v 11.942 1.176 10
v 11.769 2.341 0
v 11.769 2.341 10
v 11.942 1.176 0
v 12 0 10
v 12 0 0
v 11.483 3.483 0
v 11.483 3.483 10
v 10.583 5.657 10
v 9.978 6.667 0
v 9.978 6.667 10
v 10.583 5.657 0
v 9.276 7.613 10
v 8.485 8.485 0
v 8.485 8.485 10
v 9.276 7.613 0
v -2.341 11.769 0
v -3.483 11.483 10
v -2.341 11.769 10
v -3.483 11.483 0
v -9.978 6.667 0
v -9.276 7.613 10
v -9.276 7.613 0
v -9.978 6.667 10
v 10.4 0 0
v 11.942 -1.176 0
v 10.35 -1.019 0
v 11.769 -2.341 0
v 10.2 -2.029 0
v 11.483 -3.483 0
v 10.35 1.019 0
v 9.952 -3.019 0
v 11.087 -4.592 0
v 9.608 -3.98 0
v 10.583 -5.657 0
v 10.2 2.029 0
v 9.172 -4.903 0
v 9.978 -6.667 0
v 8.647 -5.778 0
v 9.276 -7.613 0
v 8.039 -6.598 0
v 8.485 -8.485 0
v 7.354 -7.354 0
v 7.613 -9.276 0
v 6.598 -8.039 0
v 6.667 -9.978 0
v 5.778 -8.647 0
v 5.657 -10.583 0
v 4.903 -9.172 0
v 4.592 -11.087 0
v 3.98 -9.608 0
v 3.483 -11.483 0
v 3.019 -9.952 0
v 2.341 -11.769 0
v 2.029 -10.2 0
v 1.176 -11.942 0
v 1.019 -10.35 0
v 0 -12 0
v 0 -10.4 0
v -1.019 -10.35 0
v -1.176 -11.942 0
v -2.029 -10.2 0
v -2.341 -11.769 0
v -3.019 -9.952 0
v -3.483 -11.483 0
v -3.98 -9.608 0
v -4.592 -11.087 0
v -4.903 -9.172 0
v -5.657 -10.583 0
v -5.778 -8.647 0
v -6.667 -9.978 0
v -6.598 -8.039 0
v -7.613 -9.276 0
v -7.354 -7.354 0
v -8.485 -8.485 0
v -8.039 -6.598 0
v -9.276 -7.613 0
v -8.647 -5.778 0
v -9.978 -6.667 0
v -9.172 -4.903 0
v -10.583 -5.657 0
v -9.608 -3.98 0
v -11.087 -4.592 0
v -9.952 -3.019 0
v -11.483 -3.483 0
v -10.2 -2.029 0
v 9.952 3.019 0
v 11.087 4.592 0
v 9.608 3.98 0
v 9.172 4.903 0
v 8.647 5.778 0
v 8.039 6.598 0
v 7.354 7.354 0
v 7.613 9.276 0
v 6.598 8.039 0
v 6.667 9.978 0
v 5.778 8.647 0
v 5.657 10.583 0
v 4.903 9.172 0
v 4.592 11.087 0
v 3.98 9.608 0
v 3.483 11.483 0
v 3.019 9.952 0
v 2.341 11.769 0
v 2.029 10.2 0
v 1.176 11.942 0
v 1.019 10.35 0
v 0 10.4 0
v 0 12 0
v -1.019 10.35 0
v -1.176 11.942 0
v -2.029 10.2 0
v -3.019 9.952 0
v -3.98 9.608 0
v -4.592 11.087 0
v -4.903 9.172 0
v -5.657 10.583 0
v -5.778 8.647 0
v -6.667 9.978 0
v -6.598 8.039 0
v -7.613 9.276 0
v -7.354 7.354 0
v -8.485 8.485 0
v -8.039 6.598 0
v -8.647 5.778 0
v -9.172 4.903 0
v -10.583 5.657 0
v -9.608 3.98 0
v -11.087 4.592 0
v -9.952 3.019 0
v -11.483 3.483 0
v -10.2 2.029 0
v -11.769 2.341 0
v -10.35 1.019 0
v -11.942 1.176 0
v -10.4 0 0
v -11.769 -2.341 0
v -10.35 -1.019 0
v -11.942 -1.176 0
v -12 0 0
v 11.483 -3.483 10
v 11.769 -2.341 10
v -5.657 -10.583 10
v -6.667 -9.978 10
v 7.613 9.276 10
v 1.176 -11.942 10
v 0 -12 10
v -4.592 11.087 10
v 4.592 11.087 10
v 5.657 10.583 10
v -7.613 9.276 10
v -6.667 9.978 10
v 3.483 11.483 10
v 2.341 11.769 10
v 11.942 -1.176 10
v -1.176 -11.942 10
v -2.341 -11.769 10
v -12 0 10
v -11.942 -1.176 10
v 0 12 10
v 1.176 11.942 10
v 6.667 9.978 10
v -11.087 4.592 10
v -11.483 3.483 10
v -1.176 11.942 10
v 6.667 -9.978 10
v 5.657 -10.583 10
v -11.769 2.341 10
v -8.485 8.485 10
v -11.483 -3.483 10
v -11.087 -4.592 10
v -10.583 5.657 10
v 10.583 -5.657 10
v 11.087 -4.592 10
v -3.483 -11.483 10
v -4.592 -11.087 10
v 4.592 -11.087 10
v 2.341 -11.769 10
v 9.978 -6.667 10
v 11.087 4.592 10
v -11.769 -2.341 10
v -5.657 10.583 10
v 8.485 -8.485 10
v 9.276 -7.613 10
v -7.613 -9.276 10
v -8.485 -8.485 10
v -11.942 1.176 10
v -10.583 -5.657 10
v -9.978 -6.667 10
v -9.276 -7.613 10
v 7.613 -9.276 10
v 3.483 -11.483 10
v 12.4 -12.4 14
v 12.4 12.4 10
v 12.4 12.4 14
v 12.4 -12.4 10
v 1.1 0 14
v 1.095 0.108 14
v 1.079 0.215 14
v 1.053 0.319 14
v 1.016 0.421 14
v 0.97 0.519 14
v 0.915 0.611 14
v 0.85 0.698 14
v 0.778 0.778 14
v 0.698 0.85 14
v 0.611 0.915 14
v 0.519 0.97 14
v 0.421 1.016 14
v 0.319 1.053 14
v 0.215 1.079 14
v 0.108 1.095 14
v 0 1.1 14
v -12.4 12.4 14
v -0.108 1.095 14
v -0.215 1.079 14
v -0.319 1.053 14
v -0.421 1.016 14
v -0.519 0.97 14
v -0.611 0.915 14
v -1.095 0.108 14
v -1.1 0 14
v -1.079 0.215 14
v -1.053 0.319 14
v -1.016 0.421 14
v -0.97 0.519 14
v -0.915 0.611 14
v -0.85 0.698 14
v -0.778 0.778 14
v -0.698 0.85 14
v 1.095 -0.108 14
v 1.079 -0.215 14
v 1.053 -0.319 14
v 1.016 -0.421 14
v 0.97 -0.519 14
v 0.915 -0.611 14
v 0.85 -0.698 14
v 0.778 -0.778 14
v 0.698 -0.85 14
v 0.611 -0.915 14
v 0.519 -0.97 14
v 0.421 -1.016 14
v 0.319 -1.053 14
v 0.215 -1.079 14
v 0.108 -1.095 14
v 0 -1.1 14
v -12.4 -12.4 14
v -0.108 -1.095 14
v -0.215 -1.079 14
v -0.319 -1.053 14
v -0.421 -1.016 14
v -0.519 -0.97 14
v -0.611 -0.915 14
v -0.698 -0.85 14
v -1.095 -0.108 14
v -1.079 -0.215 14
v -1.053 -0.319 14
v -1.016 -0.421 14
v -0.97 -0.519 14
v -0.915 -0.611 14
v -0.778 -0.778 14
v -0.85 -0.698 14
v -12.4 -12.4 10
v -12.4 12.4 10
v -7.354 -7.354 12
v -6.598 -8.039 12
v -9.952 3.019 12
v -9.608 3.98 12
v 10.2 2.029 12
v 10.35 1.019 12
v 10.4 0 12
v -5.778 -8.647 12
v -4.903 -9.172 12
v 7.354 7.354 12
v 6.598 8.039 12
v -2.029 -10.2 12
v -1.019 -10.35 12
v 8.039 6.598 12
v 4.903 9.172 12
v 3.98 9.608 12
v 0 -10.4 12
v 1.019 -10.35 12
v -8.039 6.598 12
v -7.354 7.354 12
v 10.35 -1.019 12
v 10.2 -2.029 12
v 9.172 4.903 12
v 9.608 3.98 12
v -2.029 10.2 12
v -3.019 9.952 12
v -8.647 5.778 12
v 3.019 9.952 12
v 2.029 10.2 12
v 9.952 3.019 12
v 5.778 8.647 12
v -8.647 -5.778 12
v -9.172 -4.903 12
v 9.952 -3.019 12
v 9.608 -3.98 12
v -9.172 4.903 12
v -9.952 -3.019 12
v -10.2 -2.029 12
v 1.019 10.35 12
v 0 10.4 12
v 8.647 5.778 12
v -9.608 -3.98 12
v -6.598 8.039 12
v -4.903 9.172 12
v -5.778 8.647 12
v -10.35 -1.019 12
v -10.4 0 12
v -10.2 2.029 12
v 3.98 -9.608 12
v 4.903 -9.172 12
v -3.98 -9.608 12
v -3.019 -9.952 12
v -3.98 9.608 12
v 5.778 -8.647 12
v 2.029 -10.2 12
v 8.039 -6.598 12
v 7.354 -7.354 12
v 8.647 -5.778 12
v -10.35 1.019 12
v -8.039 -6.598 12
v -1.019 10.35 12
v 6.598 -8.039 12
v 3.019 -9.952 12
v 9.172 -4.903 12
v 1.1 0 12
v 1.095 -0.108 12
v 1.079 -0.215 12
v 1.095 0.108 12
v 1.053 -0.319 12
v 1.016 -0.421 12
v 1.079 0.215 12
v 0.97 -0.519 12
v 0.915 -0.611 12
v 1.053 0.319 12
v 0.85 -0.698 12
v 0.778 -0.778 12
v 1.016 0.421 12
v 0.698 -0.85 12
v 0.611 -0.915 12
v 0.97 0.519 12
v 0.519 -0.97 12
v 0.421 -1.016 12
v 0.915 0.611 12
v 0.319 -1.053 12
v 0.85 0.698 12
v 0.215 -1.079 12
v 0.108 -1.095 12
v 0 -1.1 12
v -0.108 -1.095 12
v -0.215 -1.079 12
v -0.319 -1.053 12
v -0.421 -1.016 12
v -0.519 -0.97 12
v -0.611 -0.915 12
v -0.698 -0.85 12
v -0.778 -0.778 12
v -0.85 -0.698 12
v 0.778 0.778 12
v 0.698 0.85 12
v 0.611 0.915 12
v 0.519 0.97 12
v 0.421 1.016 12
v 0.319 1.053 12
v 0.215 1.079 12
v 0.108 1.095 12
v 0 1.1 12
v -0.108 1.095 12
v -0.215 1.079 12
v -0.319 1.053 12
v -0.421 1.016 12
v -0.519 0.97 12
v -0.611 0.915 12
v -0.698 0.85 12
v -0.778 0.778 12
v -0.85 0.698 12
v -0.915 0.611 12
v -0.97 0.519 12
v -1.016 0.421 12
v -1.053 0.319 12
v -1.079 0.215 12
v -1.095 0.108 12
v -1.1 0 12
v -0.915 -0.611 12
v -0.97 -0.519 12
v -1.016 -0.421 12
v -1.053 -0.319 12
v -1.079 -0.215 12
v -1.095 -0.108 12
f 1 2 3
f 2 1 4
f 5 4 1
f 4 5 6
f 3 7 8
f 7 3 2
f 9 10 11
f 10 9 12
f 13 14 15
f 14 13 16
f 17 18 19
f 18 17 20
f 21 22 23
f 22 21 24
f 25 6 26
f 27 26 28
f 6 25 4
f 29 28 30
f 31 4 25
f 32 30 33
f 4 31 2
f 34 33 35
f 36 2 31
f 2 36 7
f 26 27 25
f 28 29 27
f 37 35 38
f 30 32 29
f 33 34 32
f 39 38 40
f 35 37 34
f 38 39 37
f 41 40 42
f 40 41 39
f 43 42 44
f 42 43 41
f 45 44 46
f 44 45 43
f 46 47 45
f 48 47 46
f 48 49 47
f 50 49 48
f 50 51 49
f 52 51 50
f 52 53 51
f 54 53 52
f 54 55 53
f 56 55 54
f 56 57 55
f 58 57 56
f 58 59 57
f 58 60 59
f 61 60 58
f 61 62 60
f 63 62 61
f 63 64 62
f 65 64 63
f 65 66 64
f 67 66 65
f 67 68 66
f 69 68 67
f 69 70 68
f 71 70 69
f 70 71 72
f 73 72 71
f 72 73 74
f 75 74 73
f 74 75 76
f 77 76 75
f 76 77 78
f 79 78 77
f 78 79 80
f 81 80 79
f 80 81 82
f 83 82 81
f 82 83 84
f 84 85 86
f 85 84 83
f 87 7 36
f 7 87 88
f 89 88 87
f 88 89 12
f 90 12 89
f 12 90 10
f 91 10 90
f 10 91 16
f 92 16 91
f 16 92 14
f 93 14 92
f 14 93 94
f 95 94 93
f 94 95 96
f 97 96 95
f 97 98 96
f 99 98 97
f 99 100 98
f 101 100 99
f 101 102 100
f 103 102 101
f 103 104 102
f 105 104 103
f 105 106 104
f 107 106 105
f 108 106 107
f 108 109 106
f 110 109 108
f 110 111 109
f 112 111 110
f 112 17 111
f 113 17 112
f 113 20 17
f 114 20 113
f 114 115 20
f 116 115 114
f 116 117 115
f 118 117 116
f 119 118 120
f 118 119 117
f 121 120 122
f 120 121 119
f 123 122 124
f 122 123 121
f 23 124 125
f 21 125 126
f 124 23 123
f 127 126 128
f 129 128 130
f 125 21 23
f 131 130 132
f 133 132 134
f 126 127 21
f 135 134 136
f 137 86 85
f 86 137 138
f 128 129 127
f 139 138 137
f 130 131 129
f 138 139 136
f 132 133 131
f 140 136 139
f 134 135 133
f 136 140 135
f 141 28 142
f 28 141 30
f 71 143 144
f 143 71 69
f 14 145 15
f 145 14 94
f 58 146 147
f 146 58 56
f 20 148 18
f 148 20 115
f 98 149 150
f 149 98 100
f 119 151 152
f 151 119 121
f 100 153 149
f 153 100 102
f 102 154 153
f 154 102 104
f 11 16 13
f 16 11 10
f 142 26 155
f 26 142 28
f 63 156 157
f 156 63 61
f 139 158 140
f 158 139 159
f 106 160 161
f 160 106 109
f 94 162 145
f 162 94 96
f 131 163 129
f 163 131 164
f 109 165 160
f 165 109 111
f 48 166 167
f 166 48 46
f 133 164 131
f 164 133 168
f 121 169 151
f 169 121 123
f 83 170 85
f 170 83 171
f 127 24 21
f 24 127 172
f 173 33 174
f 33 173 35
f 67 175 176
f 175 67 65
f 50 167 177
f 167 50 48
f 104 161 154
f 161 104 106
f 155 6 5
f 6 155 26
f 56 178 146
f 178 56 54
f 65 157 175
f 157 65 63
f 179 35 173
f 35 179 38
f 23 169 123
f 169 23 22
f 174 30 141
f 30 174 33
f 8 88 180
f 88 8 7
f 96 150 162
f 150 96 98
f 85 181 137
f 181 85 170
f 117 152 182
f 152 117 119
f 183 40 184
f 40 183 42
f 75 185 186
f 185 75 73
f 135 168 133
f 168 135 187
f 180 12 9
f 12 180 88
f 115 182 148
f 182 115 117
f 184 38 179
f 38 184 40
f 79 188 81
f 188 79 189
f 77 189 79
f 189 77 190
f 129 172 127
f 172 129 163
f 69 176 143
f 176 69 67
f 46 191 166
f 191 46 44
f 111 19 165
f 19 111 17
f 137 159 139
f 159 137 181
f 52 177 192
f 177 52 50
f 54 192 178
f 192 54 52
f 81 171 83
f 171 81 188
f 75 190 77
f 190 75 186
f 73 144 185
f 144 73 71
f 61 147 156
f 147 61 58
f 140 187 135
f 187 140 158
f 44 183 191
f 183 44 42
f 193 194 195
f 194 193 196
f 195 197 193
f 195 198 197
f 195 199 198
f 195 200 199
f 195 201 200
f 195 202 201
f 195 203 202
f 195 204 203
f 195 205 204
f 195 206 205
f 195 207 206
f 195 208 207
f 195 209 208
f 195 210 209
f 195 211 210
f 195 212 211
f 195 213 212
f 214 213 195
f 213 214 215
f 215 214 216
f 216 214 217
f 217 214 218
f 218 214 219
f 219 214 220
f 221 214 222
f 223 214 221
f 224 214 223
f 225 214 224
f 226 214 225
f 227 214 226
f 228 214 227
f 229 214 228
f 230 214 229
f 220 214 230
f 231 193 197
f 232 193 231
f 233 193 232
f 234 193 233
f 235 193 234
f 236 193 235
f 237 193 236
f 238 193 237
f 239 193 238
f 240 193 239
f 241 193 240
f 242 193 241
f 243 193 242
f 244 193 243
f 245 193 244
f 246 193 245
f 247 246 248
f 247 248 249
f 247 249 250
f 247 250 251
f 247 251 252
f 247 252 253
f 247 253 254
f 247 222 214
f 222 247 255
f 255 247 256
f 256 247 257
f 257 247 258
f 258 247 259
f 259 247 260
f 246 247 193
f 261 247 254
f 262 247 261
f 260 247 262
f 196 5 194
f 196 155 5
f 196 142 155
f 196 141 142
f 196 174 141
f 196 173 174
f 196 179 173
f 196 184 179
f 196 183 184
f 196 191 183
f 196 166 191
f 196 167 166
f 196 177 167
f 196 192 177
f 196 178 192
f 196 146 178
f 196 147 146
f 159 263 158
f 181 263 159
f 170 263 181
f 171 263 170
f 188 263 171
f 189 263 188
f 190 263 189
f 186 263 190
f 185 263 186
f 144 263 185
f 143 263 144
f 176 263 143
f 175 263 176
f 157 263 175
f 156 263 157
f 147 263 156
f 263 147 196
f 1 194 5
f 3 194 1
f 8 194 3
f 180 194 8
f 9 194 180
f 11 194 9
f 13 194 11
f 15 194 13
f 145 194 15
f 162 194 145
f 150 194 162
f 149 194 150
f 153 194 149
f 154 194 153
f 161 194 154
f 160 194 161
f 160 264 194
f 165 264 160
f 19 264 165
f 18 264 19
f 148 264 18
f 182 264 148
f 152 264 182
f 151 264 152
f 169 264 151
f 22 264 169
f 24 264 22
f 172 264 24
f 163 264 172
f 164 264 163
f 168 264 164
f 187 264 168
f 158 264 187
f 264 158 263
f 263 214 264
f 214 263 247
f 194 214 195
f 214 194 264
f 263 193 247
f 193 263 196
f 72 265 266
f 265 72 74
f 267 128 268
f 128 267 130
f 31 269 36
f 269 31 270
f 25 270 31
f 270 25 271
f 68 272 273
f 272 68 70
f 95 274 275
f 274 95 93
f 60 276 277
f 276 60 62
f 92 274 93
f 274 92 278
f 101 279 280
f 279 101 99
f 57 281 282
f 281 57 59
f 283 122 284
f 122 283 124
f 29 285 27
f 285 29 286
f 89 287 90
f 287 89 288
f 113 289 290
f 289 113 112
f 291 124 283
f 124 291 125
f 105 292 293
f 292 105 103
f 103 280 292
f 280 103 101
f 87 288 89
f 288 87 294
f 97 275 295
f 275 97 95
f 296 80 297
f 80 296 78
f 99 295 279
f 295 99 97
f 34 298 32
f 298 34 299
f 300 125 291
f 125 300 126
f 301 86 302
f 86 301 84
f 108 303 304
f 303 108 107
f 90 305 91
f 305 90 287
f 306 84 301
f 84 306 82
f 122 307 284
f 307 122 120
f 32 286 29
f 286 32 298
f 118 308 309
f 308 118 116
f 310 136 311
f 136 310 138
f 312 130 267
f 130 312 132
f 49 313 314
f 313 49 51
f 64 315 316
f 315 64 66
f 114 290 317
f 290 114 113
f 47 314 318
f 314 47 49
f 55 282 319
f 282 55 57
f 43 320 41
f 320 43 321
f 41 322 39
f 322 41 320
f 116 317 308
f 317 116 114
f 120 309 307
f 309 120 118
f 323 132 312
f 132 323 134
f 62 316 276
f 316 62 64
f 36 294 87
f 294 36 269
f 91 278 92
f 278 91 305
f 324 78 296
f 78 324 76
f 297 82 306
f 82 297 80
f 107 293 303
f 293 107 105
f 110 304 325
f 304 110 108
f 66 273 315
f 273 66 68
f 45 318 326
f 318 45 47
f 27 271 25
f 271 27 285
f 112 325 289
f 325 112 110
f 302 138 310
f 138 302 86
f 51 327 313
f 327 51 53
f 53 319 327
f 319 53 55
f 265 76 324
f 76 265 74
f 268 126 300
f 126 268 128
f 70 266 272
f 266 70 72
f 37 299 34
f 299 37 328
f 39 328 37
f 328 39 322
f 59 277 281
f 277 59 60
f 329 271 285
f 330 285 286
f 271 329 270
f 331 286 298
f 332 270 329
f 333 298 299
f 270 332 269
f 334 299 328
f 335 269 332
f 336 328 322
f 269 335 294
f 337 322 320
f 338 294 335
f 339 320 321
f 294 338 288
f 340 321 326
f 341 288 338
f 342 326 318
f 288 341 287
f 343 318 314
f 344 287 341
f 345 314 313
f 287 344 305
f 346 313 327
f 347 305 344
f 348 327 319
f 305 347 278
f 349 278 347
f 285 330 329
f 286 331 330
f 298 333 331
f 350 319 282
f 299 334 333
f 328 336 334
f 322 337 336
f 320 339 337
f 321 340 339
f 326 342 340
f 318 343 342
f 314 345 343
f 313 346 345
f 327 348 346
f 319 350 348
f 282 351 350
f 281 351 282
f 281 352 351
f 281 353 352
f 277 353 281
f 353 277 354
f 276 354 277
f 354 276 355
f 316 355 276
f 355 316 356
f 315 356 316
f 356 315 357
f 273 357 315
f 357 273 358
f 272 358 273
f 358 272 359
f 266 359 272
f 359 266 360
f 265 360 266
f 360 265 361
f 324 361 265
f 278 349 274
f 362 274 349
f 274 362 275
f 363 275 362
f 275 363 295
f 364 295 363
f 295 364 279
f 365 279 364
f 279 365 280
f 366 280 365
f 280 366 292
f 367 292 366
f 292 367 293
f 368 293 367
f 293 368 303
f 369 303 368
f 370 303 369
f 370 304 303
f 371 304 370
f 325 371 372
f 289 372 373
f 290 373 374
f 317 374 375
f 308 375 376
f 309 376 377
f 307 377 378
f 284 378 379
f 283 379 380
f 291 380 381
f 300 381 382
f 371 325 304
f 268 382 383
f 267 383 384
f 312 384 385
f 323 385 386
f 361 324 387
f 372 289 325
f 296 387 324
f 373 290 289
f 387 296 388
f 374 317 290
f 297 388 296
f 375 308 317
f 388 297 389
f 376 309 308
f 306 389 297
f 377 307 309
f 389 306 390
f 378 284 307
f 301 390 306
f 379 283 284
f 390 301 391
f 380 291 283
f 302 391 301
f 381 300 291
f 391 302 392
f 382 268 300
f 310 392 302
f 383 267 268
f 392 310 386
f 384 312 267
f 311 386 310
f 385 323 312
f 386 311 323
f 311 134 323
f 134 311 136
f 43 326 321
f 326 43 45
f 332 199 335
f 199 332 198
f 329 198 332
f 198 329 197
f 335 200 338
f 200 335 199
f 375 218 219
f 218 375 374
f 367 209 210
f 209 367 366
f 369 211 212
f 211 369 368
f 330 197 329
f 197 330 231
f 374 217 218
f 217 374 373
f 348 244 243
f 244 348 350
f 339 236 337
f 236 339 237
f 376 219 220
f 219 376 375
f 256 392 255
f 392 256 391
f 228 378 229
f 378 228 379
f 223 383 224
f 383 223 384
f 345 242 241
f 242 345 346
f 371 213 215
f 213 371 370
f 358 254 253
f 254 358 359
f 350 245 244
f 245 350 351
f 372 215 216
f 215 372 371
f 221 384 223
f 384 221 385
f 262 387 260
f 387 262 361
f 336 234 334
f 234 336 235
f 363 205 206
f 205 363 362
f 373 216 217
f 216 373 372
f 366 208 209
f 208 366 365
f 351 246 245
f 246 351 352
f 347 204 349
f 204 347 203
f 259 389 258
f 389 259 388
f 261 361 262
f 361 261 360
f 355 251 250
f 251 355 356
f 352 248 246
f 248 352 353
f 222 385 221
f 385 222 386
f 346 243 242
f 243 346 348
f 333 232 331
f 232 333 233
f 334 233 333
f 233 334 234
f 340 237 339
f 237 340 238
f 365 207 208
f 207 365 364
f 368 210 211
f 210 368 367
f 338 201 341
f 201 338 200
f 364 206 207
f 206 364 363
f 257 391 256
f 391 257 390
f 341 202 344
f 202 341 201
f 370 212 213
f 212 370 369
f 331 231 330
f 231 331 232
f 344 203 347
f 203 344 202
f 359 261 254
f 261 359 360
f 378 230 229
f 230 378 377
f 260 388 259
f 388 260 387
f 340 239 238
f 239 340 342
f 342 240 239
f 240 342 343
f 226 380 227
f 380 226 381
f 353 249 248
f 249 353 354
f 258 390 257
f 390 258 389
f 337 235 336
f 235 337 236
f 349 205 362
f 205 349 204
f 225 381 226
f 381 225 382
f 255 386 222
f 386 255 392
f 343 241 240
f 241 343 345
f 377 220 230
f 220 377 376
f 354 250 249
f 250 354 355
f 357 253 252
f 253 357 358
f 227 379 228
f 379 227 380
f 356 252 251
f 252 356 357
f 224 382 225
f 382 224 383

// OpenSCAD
// motor_mount_v4.scad
// Motor mount for standard 130-size 6V DC motor (20mm body diameter)
// Designed by Rayan, 2026
// Built on Gentle Propulsion by Robert L. Read (PubInv)
// Licensed under AGPL v3
//
// Collar diameter: 24mm — fits through 25.4mm square portal
// Square block: 4mm tall — leaves enough shaft exposed to bond to rotor
// Shaft hole: 2mm diameter through entire part

$fn=64;

motor_r  = 10;      // 130-size motor body radius (20mm diameter / 2)
shaft_r  = 1.1;     // 2mm shaft + small clearance
wall     = 2;       // wall thickness — keeps collar under 25.4mm portal
portal_w = 25.4;    // square portal width (matches rotor and tail cone)
collar_h = 12;      // height of collar gripping motor body
block_h  = 4;       // square block height — thin so shaft reaches through

difference() {
    union() {
        // round collar — grips motor body, fits through portal
        cylinder(r = motor_r + wall, h = collar_h);
        // square block on top — keys into rotor portal hole, stops rotation
        translate([0, 0, collar_h])
            cube([portal_w - 0.6, portal_w - 0.6, block_h], center = true);
    }
    // motor body bore
    translate([0, 0, -1])
        cylinder(r = motor_r + 0.4, h = collar_h + 1);
    // shaft hole all the way through
    translate([0, 0, -1])
        cylinder(r = shaft_r, h = collar_h + block_h + 2);
}

// Assembly notes:
// 1. Slide motor into collar from below, shaft pointing up
// 2. Push square block up into rotor portal hole from underneath
// 3. Hot glue around square block edges to bond to rotor
// 4. Super glue shaft tip inside portal hole to transfer spin
// 5. Hot glue collar against cone inner wall to stop motor rotating
